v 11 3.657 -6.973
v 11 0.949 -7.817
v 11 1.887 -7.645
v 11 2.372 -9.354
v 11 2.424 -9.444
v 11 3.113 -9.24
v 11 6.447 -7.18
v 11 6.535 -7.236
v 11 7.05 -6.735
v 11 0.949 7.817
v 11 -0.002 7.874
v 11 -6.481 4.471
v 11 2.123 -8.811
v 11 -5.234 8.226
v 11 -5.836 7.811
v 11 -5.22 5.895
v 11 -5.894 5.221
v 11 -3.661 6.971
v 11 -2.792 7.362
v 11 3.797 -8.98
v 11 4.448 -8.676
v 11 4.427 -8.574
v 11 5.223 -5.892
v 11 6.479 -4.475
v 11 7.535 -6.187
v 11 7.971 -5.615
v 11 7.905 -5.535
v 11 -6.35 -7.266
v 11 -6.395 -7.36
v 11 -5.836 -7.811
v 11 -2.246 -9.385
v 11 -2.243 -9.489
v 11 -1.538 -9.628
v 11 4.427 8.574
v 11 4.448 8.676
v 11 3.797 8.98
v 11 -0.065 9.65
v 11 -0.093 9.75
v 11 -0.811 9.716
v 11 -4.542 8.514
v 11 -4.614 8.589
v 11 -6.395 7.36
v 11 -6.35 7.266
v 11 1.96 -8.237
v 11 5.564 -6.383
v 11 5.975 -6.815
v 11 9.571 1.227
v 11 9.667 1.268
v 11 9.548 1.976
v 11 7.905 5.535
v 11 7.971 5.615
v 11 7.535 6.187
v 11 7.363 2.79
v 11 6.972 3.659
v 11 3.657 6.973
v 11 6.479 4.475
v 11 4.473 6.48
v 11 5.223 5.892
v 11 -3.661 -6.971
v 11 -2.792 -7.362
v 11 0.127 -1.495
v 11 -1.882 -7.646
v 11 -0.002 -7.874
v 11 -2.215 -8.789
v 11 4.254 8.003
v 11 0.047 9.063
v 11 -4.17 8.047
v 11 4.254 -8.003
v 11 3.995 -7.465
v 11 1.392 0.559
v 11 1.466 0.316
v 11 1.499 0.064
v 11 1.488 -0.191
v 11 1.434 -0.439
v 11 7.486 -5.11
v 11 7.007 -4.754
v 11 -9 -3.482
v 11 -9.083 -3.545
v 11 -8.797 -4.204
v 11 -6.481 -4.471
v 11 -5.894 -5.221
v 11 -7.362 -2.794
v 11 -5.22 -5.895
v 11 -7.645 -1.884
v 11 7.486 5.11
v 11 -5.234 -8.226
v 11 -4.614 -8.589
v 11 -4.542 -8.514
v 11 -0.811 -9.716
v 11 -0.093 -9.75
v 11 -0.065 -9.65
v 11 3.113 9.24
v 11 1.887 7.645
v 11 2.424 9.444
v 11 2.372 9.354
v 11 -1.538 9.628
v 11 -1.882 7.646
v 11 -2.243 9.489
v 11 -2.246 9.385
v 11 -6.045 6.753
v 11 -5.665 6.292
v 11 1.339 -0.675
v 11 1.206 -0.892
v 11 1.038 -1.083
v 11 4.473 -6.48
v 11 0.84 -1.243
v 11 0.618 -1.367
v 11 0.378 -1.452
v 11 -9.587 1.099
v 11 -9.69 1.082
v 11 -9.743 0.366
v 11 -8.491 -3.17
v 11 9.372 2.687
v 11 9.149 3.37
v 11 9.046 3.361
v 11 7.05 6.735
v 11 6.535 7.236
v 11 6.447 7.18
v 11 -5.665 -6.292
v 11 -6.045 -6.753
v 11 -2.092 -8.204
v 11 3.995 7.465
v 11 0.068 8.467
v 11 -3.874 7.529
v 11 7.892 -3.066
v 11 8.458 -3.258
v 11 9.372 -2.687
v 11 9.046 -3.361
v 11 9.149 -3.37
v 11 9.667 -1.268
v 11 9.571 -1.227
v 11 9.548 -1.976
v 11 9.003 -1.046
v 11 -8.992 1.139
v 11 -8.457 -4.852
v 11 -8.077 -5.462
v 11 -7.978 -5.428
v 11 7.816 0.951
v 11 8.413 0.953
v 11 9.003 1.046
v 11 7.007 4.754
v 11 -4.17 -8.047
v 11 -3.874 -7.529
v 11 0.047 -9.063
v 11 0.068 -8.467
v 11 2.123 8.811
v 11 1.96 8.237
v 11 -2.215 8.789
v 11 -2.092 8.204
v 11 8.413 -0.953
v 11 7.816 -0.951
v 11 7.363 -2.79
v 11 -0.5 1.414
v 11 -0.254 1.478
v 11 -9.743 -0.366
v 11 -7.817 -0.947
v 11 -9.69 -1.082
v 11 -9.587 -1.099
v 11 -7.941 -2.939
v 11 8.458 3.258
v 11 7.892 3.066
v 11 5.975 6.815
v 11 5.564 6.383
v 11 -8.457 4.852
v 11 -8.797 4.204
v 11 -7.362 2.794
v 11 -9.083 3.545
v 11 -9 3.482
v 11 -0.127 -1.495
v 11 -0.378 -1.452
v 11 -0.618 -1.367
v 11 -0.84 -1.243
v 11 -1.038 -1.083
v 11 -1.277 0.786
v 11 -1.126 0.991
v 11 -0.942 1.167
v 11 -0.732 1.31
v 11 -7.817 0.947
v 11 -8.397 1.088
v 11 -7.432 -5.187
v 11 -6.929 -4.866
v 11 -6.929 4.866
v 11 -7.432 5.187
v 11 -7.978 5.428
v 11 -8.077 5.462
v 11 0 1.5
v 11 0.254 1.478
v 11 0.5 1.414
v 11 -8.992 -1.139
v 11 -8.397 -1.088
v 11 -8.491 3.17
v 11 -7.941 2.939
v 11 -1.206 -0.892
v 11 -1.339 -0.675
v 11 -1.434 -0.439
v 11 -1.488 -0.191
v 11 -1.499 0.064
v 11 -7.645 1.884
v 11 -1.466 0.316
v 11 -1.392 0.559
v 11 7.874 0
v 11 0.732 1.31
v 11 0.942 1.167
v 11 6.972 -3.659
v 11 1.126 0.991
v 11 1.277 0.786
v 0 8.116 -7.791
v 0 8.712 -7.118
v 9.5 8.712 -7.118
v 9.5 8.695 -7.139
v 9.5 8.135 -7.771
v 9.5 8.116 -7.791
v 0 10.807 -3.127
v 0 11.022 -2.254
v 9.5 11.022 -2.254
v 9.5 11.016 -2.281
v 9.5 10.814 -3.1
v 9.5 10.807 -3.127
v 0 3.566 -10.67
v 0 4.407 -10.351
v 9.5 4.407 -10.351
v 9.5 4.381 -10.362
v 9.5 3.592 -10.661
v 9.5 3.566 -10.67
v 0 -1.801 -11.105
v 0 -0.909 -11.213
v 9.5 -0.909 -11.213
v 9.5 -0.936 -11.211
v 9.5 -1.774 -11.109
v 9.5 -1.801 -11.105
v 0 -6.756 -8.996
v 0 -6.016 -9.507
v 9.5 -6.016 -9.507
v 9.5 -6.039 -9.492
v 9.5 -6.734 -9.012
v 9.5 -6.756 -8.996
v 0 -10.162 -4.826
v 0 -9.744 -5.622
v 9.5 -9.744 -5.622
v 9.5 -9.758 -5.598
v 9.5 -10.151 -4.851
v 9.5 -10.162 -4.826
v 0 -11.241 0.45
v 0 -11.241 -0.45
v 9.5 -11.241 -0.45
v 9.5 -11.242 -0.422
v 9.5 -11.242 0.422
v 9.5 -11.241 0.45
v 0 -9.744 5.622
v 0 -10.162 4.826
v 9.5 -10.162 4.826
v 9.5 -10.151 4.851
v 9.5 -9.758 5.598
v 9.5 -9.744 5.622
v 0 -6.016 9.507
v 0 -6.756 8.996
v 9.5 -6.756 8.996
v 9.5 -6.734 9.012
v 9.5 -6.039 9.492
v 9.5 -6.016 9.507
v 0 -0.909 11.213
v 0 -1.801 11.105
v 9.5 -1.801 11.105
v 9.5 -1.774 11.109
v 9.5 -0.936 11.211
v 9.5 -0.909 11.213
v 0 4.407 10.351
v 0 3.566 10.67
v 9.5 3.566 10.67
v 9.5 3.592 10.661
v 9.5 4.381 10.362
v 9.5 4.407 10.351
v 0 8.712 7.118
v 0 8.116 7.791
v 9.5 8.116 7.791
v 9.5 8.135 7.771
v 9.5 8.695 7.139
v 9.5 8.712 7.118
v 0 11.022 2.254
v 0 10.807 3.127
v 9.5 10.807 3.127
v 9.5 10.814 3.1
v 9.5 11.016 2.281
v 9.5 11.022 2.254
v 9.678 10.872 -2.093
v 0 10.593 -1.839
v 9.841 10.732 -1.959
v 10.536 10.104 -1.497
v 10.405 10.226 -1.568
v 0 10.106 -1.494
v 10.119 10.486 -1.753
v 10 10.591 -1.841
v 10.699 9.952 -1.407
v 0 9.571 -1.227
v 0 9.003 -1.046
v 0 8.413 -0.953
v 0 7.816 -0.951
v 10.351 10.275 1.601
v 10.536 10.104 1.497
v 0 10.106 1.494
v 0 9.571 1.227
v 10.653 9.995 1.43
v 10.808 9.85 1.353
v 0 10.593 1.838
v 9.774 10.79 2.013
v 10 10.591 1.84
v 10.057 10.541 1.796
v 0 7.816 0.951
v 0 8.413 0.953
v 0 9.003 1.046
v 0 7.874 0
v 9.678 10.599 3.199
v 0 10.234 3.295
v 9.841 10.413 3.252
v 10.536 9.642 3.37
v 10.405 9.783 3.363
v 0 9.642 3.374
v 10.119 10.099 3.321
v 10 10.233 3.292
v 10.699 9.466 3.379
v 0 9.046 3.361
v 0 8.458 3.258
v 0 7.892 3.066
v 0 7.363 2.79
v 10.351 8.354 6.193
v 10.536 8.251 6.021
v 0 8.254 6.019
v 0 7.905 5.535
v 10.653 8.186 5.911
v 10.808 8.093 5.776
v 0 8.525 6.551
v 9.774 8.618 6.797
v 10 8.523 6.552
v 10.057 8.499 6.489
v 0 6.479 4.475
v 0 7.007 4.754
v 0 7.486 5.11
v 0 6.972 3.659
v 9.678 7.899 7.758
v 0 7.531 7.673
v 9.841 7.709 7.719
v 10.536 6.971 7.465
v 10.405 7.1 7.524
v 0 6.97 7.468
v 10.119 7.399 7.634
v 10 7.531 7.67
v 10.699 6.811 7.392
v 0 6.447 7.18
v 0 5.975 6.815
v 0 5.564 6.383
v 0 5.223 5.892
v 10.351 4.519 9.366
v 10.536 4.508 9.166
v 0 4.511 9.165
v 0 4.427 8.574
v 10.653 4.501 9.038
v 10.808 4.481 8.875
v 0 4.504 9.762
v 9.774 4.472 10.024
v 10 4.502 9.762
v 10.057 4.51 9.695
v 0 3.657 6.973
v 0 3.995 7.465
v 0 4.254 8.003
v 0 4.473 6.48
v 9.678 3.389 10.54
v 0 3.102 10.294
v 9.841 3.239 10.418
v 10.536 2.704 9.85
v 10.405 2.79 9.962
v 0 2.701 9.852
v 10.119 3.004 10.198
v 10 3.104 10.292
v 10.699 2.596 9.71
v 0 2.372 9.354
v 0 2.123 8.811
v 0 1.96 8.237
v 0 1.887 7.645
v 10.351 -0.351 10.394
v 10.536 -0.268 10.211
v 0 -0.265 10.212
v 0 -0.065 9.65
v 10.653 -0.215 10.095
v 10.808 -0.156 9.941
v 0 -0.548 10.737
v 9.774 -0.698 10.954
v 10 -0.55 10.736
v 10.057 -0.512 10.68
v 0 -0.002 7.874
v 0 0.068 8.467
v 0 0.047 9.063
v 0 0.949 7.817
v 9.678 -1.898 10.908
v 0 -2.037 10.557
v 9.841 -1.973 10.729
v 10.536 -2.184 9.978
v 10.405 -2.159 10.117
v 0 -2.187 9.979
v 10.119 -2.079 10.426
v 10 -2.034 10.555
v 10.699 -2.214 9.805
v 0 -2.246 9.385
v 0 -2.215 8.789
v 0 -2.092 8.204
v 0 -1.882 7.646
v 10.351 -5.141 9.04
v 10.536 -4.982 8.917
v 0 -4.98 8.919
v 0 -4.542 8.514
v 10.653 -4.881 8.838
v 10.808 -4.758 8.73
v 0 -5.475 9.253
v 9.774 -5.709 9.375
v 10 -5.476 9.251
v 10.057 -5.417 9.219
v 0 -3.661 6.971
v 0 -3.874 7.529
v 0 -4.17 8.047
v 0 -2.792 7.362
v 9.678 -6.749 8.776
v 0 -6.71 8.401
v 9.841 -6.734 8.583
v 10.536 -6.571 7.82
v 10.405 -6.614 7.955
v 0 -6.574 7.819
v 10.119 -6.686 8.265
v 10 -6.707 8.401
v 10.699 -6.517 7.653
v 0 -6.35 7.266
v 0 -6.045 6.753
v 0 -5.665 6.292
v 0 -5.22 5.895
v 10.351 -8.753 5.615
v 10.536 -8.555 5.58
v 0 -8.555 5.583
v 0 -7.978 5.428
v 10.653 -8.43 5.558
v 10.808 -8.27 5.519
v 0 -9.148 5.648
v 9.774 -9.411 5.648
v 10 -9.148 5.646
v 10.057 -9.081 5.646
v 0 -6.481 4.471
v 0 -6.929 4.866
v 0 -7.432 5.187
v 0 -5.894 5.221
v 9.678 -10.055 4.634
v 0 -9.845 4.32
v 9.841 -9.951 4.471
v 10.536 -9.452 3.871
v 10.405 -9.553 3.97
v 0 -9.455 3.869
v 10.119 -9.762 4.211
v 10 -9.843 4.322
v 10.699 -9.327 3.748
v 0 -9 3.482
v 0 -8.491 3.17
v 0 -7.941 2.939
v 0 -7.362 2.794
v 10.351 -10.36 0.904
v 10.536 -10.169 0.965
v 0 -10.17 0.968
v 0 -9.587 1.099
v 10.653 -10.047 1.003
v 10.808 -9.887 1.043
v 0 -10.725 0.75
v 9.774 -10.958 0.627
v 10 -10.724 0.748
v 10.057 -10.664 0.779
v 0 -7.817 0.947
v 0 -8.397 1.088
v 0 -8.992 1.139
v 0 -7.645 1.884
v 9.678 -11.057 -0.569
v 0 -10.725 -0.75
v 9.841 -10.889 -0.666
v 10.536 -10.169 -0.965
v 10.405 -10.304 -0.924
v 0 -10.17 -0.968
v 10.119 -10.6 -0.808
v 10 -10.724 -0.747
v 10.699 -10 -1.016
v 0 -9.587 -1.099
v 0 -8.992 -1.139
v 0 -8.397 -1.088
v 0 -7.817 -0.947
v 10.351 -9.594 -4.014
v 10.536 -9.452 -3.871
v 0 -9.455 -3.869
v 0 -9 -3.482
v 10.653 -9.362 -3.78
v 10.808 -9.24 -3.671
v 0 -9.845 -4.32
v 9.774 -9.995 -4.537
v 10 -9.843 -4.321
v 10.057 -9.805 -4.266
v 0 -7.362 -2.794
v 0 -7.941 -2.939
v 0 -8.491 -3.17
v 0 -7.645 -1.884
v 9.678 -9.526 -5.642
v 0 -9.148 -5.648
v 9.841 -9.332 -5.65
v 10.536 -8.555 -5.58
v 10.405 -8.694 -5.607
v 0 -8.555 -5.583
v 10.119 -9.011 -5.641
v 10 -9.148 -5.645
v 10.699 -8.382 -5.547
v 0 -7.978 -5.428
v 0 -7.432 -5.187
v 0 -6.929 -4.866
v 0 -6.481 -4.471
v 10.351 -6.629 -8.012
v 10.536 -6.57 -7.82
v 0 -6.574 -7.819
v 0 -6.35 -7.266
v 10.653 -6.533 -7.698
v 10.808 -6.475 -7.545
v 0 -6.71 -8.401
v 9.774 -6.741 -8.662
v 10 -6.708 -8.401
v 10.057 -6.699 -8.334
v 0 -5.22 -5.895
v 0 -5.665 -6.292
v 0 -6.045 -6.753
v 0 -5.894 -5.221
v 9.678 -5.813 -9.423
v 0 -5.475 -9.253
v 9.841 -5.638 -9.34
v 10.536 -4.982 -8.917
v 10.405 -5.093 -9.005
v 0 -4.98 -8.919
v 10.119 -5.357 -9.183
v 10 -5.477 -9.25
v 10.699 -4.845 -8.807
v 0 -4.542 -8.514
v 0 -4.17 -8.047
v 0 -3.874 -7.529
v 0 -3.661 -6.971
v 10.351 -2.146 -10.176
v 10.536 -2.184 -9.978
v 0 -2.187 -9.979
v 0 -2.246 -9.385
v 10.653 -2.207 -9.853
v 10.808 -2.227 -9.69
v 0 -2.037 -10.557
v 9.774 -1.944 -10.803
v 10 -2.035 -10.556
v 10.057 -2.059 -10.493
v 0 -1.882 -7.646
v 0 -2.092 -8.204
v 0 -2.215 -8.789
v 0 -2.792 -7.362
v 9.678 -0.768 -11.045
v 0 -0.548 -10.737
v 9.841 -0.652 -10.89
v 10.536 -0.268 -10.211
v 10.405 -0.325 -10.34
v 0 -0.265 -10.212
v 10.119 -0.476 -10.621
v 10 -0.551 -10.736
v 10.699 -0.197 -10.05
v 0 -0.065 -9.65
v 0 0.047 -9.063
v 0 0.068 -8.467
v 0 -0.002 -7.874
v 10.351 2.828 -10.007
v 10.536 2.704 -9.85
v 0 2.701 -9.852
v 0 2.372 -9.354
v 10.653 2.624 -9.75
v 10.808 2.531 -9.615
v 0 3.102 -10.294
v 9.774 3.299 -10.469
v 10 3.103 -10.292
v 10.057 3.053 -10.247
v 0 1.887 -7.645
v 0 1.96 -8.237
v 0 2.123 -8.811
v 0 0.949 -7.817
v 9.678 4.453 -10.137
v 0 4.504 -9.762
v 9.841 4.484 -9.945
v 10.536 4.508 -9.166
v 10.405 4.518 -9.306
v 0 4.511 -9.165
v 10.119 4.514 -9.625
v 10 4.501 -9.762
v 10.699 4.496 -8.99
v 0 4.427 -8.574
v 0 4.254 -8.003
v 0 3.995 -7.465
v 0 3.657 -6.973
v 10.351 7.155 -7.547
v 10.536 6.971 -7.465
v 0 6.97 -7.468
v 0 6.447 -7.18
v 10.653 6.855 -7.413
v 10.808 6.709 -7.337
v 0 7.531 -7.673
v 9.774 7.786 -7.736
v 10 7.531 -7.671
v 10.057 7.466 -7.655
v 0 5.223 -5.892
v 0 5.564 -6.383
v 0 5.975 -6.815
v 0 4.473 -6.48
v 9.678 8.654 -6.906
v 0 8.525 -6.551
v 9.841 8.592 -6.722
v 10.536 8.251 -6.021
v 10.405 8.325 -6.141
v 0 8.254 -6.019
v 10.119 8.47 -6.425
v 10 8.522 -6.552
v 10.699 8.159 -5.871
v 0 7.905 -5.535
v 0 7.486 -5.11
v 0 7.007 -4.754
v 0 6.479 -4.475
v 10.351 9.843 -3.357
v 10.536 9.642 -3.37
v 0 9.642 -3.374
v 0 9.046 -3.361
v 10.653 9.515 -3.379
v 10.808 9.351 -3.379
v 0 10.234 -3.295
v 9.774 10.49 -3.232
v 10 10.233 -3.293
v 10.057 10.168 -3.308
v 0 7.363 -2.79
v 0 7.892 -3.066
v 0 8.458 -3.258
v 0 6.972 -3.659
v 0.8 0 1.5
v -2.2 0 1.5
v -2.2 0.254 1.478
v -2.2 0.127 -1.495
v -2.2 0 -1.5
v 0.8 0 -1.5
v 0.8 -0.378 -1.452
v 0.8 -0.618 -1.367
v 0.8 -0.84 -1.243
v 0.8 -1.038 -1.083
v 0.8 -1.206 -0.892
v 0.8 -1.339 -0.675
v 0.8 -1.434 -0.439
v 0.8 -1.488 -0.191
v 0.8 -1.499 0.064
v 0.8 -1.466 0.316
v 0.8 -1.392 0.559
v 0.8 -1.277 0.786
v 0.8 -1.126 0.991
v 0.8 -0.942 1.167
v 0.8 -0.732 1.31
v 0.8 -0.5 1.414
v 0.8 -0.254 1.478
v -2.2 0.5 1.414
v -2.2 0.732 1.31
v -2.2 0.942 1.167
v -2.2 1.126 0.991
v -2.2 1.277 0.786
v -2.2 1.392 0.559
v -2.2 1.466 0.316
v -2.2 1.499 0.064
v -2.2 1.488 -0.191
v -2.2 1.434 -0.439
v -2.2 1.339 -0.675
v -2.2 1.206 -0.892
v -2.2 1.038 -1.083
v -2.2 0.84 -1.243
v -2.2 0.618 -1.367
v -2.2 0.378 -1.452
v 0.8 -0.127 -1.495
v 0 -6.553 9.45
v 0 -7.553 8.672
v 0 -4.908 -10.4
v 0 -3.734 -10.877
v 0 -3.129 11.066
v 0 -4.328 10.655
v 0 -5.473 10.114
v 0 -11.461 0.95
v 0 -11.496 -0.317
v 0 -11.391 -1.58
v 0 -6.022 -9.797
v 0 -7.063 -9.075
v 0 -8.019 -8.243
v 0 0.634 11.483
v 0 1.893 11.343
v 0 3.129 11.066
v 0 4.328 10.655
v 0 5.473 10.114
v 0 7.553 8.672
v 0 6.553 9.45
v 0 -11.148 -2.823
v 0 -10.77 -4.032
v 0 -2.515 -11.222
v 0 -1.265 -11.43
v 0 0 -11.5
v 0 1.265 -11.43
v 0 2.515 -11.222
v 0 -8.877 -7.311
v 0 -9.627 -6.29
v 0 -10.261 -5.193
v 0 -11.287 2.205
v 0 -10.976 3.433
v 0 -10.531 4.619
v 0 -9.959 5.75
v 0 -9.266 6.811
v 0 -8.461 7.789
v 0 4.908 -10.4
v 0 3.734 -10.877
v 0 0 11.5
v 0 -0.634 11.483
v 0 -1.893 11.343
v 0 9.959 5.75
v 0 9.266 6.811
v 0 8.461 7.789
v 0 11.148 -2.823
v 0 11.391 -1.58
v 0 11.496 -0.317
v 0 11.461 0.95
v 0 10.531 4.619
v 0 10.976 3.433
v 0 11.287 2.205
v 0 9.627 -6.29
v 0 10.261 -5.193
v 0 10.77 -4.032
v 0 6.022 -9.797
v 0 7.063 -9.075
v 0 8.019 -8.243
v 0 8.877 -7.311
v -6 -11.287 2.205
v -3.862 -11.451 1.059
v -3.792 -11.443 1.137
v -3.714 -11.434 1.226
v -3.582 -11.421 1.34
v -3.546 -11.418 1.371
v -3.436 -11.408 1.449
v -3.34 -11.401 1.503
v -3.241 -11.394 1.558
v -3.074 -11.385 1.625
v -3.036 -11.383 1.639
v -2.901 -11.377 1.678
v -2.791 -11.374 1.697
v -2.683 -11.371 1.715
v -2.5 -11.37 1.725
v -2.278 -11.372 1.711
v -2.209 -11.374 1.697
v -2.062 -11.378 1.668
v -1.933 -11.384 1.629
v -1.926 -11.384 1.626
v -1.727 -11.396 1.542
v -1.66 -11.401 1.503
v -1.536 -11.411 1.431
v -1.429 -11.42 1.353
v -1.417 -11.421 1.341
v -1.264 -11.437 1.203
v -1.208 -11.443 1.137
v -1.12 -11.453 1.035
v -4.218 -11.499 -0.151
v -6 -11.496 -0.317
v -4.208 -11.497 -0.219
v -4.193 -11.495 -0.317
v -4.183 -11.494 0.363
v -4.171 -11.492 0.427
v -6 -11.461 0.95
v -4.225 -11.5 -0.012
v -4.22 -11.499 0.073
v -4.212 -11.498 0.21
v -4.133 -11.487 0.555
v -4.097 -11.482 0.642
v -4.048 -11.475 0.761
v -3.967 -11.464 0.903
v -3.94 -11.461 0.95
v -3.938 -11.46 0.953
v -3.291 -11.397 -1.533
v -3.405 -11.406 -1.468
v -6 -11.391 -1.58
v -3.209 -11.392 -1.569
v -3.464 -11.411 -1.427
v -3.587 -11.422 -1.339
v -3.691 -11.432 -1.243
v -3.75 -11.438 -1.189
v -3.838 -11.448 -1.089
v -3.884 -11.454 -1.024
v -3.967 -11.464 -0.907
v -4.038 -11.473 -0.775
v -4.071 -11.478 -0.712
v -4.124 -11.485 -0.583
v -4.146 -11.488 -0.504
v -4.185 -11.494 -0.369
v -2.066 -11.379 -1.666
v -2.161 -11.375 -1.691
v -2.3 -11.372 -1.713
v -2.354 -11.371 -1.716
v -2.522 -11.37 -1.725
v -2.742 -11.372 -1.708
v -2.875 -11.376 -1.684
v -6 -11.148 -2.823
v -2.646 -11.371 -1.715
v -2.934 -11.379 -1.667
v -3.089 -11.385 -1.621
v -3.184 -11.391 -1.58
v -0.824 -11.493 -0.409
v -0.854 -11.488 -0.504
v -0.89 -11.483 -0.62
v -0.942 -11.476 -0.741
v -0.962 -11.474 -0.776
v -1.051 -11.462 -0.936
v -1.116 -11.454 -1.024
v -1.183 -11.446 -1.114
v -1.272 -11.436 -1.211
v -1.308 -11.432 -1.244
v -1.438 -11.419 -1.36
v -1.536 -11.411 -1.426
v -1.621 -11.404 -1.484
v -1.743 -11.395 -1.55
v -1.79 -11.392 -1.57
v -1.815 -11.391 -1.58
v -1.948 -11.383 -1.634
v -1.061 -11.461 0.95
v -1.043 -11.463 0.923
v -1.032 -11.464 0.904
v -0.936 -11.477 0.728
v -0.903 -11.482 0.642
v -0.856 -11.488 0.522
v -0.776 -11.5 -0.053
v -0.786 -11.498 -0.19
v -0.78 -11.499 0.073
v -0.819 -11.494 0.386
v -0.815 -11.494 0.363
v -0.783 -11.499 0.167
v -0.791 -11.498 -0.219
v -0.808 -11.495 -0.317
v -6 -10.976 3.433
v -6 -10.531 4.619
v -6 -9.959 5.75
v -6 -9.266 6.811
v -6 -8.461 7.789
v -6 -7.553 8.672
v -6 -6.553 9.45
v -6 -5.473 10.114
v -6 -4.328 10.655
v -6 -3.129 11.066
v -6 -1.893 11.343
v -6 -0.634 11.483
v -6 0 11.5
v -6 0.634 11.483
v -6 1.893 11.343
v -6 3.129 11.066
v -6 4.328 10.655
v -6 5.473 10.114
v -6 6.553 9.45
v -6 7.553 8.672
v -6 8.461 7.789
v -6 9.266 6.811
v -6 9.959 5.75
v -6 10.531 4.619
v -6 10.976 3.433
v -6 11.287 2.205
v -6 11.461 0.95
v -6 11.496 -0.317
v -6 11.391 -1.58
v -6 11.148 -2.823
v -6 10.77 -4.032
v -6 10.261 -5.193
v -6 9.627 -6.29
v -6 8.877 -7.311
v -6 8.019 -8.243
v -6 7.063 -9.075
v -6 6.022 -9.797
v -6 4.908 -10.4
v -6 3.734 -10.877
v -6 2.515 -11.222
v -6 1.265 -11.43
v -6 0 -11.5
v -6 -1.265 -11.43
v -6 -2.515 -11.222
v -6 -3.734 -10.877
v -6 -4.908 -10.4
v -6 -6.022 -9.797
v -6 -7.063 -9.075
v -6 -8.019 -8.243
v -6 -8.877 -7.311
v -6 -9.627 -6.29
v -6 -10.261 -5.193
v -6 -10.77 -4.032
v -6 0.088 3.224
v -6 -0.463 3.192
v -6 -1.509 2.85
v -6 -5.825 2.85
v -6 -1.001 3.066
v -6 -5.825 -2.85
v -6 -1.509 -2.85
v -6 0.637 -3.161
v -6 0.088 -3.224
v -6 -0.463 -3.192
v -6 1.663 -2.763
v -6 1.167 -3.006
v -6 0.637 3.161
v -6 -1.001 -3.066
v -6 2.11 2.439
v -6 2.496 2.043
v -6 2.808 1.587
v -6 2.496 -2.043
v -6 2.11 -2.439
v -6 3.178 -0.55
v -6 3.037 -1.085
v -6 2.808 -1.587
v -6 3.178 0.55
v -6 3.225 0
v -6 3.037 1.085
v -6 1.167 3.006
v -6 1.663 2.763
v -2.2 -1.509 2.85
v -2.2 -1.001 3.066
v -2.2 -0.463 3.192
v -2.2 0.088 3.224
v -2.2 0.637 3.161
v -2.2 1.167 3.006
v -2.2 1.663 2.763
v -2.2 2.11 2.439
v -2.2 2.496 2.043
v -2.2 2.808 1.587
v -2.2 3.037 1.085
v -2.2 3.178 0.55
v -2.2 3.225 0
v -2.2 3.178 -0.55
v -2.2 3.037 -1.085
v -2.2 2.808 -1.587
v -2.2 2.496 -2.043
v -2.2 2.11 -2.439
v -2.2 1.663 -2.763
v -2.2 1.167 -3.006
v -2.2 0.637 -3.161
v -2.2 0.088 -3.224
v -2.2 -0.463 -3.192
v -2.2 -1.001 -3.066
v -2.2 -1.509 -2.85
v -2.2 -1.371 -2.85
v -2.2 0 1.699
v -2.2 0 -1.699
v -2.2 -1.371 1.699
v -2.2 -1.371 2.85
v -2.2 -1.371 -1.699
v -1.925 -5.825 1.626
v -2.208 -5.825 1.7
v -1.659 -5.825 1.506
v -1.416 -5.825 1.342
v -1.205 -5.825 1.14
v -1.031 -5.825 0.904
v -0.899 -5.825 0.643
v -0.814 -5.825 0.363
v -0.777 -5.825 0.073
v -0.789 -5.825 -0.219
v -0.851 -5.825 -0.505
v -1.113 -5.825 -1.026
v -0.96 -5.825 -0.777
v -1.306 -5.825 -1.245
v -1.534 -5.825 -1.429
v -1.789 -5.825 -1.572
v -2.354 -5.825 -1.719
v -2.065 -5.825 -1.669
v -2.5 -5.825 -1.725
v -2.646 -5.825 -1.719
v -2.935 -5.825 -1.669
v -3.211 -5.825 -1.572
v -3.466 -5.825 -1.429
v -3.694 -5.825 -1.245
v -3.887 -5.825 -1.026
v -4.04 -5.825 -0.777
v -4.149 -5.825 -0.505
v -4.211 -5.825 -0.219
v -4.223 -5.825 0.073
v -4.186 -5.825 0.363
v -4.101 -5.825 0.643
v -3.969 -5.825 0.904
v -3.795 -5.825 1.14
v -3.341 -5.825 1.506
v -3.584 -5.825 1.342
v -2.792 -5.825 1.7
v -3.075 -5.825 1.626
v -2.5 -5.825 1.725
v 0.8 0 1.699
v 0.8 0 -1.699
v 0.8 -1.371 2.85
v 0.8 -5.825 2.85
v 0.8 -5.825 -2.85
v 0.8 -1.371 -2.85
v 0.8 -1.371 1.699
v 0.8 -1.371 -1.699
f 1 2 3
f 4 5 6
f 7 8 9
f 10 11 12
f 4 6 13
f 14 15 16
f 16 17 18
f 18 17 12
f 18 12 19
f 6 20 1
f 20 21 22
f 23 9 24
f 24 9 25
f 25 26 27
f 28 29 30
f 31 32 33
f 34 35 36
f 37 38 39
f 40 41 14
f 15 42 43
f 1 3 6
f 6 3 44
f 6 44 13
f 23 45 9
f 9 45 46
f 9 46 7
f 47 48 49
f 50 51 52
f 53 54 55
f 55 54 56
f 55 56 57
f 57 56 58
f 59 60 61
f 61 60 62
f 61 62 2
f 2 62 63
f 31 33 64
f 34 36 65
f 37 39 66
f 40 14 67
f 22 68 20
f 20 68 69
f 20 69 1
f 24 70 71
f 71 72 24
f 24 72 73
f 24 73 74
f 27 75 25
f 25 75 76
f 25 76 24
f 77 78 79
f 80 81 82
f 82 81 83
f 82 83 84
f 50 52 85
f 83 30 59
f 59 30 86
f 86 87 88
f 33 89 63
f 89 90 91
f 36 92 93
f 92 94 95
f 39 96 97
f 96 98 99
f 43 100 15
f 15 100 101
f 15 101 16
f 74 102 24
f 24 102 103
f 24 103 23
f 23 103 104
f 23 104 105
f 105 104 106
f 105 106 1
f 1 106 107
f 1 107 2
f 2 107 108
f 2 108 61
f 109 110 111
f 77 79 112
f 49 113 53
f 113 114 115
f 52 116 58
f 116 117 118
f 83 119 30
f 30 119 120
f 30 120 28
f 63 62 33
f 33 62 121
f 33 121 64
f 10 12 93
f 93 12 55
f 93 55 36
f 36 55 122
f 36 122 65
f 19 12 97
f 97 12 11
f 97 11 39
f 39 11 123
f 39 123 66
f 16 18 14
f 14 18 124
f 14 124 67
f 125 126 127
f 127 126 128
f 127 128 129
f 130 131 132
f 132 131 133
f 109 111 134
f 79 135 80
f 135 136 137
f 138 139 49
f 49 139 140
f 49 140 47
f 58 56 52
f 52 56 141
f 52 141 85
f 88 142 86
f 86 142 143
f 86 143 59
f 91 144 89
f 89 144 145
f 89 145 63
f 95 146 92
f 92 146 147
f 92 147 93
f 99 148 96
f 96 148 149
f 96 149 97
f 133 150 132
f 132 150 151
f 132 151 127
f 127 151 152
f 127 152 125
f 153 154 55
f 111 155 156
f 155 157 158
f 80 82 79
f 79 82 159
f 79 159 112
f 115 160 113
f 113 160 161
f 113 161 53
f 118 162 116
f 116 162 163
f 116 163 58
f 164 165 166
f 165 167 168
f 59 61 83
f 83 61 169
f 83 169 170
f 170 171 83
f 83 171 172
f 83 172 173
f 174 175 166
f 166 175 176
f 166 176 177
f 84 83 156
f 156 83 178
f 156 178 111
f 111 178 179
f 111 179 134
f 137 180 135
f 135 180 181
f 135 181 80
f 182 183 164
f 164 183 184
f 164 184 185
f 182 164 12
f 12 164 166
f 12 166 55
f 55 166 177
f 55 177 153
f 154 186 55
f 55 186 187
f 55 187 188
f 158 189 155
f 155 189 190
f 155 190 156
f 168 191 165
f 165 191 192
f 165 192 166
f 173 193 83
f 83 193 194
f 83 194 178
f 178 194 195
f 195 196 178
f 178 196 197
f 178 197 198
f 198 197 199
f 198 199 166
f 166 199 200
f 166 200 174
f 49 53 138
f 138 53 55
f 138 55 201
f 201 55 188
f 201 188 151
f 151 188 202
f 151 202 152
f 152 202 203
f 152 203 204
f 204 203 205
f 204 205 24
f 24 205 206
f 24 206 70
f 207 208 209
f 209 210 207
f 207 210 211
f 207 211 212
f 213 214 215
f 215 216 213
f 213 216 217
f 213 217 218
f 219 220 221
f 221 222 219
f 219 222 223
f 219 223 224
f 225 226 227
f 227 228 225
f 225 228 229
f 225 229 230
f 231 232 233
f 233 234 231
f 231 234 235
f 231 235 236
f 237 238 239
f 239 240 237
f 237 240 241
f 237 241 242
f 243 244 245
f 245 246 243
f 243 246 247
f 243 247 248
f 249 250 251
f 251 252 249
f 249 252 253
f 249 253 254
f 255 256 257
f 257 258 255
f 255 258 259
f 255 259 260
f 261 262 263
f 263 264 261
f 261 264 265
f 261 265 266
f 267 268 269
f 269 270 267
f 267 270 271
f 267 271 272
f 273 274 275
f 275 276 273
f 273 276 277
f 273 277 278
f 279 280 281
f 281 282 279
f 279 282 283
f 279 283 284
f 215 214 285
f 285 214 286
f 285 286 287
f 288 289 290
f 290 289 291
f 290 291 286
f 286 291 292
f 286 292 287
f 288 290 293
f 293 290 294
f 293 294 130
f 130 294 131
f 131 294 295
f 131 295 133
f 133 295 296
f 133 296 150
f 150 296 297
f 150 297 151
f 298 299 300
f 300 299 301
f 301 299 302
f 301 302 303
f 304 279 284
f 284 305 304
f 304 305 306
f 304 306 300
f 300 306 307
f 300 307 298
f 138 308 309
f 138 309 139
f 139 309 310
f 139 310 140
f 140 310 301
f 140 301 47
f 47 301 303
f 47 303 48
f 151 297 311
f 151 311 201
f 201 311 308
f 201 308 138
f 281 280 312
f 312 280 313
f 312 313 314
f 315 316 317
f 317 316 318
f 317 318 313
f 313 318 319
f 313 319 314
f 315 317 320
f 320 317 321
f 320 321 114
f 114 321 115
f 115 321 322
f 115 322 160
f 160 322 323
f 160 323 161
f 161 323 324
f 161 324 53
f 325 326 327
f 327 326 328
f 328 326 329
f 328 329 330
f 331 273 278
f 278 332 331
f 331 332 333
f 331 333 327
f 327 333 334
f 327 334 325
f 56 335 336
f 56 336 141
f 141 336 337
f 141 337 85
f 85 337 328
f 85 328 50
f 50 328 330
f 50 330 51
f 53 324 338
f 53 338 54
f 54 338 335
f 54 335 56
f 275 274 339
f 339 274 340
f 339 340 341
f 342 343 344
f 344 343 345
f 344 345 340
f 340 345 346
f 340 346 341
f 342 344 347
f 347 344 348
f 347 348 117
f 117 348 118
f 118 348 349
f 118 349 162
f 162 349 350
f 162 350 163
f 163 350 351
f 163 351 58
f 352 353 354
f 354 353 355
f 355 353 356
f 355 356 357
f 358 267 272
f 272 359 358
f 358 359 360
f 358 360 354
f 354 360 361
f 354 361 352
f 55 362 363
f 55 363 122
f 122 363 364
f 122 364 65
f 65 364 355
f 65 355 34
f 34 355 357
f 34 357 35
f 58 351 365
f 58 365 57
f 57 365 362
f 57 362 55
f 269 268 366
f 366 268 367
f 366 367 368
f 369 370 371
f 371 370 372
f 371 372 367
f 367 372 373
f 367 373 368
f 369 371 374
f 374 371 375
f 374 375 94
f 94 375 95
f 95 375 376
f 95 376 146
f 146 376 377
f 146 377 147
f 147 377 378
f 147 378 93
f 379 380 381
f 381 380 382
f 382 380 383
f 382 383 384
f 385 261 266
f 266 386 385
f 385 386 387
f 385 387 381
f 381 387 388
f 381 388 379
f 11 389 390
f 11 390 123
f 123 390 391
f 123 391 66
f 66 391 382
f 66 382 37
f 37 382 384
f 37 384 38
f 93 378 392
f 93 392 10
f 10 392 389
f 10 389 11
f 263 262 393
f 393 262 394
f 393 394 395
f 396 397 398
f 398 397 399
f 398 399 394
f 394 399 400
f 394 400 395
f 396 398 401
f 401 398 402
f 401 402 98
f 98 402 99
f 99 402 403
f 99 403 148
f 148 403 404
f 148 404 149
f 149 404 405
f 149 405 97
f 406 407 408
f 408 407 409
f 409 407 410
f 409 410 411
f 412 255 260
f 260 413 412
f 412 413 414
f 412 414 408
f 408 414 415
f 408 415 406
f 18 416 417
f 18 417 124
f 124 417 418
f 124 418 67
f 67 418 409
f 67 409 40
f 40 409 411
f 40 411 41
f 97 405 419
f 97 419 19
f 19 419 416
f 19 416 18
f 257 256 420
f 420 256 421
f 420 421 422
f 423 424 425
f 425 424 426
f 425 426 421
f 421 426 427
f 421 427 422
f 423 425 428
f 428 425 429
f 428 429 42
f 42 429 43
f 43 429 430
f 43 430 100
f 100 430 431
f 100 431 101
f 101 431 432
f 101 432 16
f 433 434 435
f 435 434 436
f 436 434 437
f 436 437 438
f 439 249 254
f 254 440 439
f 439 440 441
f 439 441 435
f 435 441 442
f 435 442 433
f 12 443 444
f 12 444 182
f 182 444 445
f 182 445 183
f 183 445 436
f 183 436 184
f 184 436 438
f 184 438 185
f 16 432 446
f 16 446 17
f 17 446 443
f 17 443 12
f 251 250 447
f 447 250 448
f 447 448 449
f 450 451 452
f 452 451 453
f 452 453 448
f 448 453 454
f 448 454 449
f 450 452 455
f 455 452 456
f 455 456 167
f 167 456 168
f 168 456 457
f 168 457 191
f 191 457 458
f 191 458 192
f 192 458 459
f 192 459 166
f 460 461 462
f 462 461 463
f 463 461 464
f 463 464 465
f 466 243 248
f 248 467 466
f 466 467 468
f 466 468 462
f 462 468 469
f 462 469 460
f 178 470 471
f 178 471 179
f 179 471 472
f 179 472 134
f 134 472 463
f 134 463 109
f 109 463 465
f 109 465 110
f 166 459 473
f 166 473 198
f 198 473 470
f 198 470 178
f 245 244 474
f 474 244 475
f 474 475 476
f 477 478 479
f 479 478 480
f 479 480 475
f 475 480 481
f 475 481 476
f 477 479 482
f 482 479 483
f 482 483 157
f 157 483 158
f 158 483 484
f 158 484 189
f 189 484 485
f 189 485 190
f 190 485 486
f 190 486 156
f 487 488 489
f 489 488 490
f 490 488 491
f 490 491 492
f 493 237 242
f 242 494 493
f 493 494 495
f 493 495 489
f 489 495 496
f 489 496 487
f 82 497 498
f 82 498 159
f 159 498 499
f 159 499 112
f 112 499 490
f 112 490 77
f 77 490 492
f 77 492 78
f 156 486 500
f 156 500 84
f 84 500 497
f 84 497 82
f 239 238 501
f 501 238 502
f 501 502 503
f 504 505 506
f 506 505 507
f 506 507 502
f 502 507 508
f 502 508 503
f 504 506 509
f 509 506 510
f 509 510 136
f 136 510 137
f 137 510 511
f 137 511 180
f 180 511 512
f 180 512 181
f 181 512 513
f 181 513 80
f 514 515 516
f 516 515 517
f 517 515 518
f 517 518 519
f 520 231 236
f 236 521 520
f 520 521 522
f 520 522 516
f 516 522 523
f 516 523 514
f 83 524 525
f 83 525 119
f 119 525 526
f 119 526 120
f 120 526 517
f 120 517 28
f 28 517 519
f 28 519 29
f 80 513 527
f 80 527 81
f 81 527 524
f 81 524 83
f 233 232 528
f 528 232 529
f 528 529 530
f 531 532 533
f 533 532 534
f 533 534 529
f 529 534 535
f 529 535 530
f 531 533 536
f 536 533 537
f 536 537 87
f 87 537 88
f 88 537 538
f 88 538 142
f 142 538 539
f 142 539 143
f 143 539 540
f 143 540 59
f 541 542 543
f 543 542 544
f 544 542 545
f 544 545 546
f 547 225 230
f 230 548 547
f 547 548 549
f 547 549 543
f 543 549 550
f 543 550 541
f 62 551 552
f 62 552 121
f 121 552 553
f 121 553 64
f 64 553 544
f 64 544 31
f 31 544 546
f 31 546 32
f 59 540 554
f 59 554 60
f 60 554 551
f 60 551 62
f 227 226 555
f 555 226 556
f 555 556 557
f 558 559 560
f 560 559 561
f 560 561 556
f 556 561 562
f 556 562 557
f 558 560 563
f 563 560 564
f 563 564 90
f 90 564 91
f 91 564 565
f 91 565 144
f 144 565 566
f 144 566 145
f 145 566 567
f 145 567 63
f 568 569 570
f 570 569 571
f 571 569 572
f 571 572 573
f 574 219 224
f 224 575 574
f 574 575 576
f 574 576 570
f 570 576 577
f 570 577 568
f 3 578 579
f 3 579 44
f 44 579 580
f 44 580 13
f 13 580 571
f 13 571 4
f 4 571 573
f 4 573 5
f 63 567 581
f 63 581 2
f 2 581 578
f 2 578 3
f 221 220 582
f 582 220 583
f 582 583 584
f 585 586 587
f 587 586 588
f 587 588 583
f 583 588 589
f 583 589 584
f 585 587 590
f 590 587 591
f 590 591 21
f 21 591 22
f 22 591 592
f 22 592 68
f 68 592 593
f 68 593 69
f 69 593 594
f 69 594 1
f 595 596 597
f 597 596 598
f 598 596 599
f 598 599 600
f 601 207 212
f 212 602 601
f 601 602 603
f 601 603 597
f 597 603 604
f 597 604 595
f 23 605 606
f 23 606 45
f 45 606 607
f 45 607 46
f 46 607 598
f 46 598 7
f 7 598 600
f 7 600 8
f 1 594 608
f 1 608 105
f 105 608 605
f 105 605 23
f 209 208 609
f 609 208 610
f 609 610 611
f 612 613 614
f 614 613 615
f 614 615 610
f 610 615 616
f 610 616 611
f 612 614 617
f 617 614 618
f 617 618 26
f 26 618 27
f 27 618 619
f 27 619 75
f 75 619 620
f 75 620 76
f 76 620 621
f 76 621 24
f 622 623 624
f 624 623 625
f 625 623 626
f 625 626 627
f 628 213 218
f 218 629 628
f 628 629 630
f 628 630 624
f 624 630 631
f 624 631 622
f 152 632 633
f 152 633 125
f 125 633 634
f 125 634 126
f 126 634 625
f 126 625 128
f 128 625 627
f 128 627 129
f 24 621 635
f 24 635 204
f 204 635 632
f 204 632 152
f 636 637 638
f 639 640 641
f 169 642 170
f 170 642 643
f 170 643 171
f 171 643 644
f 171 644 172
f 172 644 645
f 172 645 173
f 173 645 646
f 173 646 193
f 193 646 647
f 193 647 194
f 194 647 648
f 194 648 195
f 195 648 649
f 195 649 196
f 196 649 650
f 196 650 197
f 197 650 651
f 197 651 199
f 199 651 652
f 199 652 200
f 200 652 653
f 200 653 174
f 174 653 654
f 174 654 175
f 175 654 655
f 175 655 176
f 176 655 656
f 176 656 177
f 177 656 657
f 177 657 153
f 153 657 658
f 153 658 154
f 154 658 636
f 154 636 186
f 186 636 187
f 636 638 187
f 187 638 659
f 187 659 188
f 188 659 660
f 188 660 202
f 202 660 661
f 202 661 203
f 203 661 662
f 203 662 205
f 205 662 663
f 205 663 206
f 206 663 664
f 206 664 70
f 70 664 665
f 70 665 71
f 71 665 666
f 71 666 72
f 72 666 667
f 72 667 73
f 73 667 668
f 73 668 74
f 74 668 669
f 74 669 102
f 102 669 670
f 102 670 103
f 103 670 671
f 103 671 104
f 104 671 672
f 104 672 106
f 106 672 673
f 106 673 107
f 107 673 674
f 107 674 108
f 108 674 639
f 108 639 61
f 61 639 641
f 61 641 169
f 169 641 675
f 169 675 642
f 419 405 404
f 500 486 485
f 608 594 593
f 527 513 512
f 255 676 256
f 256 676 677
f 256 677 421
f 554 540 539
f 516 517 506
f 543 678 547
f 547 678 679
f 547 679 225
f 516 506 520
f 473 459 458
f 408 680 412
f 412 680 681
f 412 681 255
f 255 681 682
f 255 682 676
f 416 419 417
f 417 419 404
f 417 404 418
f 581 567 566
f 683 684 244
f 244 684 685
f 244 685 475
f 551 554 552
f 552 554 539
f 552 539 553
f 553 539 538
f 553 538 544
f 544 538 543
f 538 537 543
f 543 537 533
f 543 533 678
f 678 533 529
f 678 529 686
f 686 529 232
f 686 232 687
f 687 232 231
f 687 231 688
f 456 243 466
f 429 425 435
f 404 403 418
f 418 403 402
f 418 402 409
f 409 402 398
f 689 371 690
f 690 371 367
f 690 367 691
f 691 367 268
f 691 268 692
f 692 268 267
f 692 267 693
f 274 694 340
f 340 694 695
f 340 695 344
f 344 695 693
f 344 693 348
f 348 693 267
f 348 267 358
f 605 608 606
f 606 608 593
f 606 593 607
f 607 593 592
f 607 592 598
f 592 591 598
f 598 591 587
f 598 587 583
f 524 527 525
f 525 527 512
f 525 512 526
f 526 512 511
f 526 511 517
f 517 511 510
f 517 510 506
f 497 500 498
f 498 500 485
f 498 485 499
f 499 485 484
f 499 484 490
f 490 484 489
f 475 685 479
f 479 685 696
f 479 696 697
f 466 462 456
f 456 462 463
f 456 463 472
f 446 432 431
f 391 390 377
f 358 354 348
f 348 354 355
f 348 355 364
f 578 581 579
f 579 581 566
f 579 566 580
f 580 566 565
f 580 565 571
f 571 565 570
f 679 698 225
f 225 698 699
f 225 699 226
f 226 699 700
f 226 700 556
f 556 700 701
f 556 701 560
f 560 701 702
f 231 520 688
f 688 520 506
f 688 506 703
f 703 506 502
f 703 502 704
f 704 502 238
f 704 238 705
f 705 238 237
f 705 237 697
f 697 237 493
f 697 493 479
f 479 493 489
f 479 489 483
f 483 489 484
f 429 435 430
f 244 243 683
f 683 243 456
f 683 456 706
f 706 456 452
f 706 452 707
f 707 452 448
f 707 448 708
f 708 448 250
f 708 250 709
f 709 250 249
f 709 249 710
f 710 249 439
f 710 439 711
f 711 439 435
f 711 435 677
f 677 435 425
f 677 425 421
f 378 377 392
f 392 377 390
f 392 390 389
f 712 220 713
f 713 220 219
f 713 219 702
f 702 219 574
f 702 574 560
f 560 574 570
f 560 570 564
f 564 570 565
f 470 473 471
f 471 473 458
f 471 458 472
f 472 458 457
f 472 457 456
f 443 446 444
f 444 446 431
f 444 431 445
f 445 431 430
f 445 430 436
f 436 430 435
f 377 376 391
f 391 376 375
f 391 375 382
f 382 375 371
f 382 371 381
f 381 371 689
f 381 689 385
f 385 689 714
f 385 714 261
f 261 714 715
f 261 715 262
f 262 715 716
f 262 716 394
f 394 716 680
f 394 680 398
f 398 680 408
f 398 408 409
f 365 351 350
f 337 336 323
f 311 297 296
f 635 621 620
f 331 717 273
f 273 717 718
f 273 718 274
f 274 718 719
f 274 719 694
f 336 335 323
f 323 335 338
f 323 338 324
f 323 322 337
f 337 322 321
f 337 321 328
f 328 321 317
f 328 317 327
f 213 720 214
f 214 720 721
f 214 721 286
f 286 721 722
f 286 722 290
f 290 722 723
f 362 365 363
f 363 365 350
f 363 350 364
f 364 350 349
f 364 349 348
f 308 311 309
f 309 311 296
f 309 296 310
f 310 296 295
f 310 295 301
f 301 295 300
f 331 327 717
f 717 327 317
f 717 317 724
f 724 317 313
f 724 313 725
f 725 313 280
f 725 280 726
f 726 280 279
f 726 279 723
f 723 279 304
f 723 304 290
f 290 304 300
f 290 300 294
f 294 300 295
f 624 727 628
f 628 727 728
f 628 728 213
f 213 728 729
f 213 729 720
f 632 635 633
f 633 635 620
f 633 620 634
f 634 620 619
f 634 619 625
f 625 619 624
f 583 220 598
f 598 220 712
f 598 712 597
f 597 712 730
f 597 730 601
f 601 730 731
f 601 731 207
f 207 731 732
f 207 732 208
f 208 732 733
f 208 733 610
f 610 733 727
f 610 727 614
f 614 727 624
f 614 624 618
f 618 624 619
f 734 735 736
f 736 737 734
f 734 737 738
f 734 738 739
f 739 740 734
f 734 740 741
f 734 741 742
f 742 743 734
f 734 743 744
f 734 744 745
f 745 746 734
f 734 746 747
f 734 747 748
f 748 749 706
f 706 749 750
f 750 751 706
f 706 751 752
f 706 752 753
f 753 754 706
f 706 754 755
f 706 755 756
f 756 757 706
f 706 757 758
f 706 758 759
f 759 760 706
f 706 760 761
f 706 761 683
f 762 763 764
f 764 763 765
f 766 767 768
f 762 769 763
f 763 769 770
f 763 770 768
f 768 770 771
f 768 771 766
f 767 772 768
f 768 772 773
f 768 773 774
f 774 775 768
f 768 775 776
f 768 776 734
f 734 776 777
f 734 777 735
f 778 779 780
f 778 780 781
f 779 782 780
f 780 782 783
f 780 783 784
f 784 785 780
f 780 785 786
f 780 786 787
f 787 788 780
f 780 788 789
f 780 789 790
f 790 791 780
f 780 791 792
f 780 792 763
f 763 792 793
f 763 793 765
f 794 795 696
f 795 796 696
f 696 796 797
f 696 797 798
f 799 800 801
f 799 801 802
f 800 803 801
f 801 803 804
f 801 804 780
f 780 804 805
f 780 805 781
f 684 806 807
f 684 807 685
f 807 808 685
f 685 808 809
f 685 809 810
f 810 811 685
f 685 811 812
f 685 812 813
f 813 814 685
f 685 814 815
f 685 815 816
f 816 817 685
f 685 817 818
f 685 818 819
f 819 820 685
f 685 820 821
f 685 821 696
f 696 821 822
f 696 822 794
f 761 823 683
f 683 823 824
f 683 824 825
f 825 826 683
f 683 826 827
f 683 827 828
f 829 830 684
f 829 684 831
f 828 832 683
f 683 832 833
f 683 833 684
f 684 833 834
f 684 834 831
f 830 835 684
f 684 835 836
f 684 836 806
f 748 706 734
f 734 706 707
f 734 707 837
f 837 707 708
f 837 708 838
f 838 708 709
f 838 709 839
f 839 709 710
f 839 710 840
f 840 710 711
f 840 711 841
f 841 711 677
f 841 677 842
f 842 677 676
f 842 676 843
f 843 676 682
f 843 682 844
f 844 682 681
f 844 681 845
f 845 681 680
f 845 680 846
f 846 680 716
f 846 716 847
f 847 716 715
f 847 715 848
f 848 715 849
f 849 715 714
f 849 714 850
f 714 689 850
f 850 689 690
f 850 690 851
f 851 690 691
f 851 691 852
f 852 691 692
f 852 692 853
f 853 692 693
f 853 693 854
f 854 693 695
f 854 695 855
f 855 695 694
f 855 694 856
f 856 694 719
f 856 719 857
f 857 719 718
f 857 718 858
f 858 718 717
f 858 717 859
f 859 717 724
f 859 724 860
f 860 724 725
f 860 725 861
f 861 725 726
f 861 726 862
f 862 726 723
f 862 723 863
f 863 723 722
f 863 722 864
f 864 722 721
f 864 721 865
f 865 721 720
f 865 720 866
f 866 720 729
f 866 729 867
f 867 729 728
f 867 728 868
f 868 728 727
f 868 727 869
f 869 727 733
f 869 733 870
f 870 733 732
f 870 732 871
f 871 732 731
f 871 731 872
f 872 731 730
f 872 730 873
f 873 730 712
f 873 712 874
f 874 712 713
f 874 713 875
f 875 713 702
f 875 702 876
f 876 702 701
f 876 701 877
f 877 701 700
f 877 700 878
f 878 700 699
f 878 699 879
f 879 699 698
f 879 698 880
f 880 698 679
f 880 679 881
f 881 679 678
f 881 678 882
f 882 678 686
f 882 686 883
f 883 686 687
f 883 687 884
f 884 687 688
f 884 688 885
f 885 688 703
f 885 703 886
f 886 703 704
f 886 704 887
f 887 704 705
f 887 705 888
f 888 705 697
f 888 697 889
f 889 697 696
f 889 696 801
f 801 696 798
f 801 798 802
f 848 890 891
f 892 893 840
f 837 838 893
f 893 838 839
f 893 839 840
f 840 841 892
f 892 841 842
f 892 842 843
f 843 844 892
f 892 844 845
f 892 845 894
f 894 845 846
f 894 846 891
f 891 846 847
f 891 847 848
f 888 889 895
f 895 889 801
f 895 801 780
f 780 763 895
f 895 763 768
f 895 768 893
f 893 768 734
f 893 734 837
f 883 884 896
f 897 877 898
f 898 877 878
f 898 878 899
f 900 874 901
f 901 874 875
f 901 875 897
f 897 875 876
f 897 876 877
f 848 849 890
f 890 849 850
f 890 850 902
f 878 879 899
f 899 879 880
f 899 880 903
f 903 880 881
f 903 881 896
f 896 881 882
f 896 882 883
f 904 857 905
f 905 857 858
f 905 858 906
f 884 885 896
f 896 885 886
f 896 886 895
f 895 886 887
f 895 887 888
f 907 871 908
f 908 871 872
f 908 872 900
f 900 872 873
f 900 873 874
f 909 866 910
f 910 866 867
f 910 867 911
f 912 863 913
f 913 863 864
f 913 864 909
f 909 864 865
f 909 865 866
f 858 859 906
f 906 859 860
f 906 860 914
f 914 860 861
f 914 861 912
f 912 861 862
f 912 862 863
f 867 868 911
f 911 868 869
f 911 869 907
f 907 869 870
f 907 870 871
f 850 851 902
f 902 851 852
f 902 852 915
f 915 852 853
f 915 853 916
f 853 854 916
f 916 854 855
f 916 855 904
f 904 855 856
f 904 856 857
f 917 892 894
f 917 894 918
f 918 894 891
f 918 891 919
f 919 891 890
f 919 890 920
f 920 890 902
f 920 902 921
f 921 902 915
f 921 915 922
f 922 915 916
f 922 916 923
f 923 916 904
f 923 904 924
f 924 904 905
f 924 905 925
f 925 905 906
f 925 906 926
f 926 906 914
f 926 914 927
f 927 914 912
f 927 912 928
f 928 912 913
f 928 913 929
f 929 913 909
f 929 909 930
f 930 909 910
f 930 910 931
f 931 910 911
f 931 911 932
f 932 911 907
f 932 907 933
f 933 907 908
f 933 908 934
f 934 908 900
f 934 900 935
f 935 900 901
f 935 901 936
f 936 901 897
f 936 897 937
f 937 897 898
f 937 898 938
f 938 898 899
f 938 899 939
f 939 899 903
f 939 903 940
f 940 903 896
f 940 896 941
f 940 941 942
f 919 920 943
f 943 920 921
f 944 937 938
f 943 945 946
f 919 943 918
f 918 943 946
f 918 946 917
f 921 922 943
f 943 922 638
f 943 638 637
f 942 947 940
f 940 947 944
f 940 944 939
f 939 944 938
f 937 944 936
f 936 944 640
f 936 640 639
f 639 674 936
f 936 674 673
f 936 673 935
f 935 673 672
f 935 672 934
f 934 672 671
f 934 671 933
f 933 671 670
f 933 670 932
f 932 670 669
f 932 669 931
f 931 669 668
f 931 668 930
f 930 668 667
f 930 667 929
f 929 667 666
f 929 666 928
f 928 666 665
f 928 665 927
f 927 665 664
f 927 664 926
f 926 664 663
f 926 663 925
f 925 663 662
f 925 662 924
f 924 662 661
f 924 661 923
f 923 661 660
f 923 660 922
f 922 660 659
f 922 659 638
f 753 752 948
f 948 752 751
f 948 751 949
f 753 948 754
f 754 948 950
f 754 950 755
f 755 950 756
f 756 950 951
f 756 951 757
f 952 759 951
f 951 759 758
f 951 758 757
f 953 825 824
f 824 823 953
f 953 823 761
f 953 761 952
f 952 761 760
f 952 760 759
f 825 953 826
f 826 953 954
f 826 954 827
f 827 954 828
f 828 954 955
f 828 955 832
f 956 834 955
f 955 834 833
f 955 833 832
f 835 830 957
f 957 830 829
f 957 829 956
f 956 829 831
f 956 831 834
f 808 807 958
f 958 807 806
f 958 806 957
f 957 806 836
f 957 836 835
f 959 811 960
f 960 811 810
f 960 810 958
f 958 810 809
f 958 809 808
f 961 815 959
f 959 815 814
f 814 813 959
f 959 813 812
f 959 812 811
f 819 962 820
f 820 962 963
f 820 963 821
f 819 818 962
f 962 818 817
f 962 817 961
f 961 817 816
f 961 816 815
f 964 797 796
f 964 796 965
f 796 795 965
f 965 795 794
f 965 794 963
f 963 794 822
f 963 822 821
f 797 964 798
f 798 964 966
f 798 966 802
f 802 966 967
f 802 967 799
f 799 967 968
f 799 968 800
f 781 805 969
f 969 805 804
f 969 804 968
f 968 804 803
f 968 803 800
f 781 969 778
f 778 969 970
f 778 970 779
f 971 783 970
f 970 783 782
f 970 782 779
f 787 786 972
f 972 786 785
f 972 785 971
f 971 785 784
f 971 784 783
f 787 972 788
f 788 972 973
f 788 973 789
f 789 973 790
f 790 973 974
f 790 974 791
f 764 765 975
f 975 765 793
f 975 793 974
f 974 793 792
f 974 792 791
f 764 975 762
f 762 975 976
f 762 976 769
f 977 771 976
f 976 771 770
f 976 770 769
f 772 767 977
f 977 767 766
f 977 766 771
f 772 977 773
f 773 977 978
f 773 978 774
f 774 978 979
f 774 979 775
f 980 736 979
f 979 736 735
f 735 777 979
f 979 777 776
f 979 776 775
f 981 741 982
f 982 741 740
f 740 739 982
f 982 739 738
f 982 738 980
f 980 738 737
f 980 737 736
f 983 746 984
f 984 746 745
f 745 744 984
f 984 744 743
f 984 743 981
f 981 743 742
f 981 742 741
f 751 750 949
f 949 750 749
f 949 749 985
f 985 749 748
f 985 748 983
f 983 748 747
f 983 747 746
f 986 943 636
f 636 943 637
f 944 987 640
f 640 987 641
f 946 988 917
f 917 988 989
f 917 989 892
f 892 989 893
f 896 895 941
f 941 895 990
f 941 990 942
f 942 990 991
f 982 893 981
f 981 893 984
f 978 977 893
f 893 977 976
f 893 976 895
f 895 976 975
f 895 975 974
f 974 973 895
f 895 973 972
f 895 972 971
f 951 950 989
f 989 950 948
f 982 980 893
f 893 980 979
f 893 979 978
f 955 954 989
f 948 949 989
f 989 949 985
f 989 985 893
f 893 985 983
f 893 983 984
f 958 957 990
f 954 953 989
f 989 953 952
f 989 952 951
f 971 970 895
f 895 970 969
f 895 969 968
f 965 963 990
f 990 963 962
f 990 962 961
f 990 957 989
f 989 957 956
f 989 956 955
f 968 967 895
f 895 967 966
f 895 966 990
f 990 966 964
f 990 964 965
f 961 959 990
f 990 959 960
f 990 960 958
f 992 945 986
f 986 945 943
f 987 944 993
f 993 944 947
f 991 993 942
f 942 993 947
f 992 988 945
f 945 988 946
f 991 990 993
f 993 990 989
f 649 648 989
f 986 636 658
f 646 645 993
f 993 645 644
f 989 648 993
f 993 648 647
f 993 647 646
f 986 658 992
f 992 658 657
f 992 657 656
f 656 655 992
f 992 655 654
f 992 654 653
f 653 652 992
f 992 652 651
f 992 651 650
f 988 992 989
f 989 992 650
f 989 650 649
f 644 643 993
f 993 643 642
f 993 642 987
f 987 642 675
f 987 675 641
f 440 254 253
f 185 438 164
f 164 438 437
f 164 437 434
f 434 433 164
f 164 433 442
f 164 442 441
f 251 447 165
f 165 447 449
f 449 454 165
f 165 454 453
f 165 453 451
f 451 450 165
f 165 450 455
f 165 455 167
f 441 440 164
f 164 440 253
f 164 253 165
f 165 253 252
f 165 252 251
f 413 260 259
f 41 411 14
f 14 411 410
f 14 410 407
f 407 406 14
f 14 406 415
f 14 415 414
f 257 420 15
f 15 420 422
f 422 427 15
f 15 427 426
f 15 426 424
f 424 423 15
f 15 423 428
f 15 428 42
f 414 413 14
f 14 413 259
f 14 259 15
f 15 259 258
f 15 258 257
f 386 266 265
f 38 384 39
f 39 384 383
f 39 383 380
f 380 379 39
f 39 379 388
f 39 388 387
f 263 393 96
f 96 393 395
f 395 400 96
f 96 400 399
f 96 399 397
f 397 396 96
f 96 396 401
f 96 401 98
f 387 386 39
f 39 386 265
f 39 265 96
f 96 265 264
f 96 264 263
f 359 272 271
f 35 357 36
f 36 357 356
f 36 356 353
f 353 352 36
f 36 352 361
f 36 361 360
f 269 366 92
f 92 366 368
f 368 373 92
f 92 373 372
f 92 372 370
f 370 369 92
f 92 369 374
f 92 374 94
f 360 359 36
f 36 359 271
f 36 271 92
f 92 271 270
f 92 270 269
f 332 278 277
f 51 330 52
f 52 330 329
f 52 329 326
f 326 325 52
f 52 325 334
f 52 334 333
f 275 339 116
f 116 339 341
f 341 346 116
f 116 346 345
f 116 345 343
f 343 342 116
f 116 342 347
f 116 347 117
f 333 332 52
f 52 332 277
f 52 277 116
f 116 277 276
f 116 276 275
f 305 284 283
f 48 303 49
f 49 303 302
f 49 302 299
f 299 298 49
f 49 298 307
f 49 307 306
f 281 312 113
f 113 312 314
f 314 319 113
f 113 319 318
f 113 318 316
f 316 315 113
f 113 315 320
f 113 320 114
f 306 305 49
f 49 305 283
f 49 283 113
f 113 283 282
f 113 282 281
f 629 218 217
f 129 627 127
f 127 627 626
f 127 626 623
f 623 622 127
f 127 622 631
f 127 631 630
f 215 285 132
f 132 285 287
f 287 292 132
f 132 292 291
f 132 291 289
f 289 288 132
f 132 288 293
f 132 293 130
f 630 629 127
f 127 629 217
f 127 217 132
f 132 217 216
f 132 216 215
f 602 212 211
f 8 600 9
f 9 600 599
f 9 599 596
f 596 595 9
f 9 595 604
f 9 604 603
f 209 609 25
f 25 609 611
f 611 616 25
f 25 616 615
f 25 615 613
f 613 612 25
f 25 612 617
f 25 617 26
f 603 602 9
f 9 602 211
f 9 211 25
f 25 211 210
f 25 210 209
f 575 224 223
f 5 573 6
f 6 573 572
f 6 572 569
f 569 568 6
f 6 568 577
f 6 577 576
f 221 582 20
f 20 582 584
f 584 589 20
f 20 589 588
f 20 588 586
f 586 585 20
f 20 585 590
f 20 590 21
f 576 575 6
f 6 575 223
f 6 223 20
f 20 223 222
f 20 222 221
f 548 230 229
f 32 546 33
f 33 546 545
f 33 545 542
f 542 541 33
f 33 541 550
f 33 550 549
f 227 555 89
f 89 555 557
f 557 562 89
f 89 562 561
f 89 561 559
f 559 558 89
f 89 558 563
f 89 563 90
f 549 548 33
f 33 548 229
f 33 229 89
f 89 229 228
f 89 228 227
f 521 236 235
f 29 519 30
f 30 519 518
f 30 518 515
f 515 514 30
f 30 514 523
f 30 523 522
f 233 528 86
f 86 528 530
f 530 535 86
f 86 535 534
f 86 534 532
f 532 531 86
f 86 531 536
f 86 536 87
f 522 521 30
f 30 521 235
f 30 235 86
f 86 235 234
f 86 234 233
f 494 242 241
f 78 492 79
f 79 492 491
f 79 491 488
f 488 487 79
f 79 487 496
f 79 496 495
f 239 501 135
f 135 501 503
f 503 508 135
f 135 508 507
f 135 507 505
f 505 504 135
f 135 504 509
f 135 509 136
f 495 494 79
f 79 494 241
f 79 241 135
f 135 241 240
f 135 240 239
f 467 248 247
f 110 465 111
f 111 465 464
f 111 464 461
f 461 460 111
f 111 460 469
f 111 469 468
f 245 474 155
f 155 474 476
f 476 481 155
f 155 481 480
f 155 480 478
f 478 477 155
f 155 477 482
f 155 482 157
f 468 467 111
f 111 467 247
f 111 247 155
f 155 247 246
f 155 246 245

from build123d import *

# Parameters (mm, degrees)
BASPROSKE_W         = 11
BASPROSKE_H         = 11.25
TOOTHCUT_DEPTH      = 20.342311134
TEETHCUTS_COUNT     = 13
TEETHCUTS_ANGLE     = 332.307692308
BORSKE_R            = 1.5
BORE_DEPTH          = 50.0000508
SKETCH2_R           = 11.5
BOSS_EXTRUDE1_DEPTH = 6
SKETCH4_R           = 3.225
CUT_EXTRUDE1_DEPTH  = 3.8
CUT_EXTRUDE2_START  = -6
SKETCH5_R           = 1.5
CUT_EXTRUDE2_DEPTH  = 6
SKETCH6_R           = 1.725
CUT_EXTRUDE3_DEPTH  = 11.8
CUT_EXTRUDE4_DEPTH  = 6.8
CHAMFER1_SIZE       = 1.5


with BuildPart() as part:
    # BasProSke → Base-Revolve (revolve)
    with BuildSketch(Plane(origin=(0, 0, 0), x_dir=(1, 0, 0), z_dir=(0, 1, 0)), mode=Mode.PRIVATE) as base_revolve_sk:
        with Locations((5.5, 5.625)):
            Rectangle(BASPROSKE_W, BASPROSKE_H)
    revolve(base_revolve_sk.sketch.rotate(Axis((-10, 0, 0), (1, 0, 0)), 180), axis=Axis((-10, 0, 0), (1, 0, 0)))

    # TooCutSke → ToothCut (cut, through all)
    with BuildSketch(Plane(origin=(0, 0, 0), x_dir=(0, 0, -1), z_dir=(1, 0, 0))):
        with BuildLine():
            ThreePointArc((0.95135711, 7.81631599), (0, 7.874), (-0.95135711, 7.81631599))
            ThreePointArc((-0.95135711, 7.81631599), (-1.233506032, 9.58619675), (-2.277442519, 11.043002342))
            ThreePointArc((-2.277442519, 11.043002342), (0, 11.2754), (2.277442519, 11.043002342))
            ThreePointArc((2.277442519, 11.043002342), (1.233506032, 9.58619675), (0.95135711, 7.81631599))
        make_face()
    toothcut = extrude(amount=TOOTHCUT_DEPTH, mode=Mode.SUBTRACT)

    # TeethCuts: ToothCut ×13 about axis
    teethcuts_axis = Axis((-10, 0, 0), (1, 0, 0))
    for i in range(1, TEETHCUTS_COUNT):
        add(toothcut.rotate(teethcuts_axis, i * TEETHCUTS_ANGLE / (TEETHCUTS_COUNT - 1)), mode=Mode.SUBTRACT)

    # BorSke → Bore (cut, symmetric)
    with BuildSketch(Plane(origin=(0, 0, 0), x_dir=(0, 0, -1), z_dir=(1, 0, 0))):
        with Locations(Location((0, 0, 0), (0, 0, 180))):
            Circle(BORSKE_R)
    extrude(amount=BORE_DEPTH, both=True, mode=Mode.SUBTRACT)

    # Sketch2 → Boss-Extrude1 (add)
    with BuildSketch(Plane.ZY):
        Circle(SKETCH2_R)
    extrude(amount=BOSS_EXTRUDE1_DEPTH)

    # Sketch4 → Cut-Extrude1 (cut)
    with BuildSketch(Plane.ZY.offset(6)):
        Circle(SKETCH4_R)
    extrude(amount=-CUT_EXTRUDE1_DEPTH, mode=Mode.SUBTRACT)

    # Sketch5 → Cut-Extrude2 (cut)
    with BuildSketch(Plane.ZY.offset(6).offset(CUT_EXTRUDE2_START)):
        Circle(SKETCH5_R)
    extrude(amount=CUT_EXTRUDE2_DEPTH, mode=Mode.SUBTRACT)

    # Sketch6 → Cut-Extrude3 (cut)
    with BuildSketch(Plane(origin=(0, 0, 0), x_dir=(1, 0, 0), z_dir=(0, 1, 0))):
        with Locations(Location((-2.5, 0, 0), (0, 0, 270))):
            Circle(SKETCH6_R)
    extrude(amount=-CUT_EXTRUDE3_DEPTH, mode=Mode.SUBTRACT)

    # Sketch7 → Cut-Extrude4 (cut)
    with BuildSketch(Plane.ZY.offset(6)):
        Polygon((-2.85, -1.370675016), (-2.85, -5.825), (2.85, -5.825), (2.85, -1.370675016), (1.698712748, -1.370675016), (1.698712748, 0), (-1.698712748, 0), (-1.698712748, -1.370675016), align=None)
    extrude(amount=-CUT_EXTRUDE4_DEPTH, mode=Mode.SUBTRACT)

    # Chamfer1
    chamfer1_edges = [part.edges().sort_by_distance(p)[0] for p in [
        (11, -6.390728401, 9.258568491),
        (11, 10.923095446, -2.692301223),
        (11, -9.961380289, 5.228135685),
        (11, -11.25, 0),
        (11, -9.961380289, -5.228135685),
        (11, -6.390728401, -9.258568491),
        (11, -1.356037653, -11.167974834),
        (11, 3.989304979, -10.51893273),
        (11, 8.420745917, -7.460129905),
        (11, 10.923095446, 2.692301223),
        (11, 8.420745917, 7.460129905),
        (11, 3.989304979, 10.51893273),
        (11, -1.356037653, 11.167974834),
    ]]
    chamfer(chamfer1_edges, length=CHAMFER1_SIZE)


solid = part.part
